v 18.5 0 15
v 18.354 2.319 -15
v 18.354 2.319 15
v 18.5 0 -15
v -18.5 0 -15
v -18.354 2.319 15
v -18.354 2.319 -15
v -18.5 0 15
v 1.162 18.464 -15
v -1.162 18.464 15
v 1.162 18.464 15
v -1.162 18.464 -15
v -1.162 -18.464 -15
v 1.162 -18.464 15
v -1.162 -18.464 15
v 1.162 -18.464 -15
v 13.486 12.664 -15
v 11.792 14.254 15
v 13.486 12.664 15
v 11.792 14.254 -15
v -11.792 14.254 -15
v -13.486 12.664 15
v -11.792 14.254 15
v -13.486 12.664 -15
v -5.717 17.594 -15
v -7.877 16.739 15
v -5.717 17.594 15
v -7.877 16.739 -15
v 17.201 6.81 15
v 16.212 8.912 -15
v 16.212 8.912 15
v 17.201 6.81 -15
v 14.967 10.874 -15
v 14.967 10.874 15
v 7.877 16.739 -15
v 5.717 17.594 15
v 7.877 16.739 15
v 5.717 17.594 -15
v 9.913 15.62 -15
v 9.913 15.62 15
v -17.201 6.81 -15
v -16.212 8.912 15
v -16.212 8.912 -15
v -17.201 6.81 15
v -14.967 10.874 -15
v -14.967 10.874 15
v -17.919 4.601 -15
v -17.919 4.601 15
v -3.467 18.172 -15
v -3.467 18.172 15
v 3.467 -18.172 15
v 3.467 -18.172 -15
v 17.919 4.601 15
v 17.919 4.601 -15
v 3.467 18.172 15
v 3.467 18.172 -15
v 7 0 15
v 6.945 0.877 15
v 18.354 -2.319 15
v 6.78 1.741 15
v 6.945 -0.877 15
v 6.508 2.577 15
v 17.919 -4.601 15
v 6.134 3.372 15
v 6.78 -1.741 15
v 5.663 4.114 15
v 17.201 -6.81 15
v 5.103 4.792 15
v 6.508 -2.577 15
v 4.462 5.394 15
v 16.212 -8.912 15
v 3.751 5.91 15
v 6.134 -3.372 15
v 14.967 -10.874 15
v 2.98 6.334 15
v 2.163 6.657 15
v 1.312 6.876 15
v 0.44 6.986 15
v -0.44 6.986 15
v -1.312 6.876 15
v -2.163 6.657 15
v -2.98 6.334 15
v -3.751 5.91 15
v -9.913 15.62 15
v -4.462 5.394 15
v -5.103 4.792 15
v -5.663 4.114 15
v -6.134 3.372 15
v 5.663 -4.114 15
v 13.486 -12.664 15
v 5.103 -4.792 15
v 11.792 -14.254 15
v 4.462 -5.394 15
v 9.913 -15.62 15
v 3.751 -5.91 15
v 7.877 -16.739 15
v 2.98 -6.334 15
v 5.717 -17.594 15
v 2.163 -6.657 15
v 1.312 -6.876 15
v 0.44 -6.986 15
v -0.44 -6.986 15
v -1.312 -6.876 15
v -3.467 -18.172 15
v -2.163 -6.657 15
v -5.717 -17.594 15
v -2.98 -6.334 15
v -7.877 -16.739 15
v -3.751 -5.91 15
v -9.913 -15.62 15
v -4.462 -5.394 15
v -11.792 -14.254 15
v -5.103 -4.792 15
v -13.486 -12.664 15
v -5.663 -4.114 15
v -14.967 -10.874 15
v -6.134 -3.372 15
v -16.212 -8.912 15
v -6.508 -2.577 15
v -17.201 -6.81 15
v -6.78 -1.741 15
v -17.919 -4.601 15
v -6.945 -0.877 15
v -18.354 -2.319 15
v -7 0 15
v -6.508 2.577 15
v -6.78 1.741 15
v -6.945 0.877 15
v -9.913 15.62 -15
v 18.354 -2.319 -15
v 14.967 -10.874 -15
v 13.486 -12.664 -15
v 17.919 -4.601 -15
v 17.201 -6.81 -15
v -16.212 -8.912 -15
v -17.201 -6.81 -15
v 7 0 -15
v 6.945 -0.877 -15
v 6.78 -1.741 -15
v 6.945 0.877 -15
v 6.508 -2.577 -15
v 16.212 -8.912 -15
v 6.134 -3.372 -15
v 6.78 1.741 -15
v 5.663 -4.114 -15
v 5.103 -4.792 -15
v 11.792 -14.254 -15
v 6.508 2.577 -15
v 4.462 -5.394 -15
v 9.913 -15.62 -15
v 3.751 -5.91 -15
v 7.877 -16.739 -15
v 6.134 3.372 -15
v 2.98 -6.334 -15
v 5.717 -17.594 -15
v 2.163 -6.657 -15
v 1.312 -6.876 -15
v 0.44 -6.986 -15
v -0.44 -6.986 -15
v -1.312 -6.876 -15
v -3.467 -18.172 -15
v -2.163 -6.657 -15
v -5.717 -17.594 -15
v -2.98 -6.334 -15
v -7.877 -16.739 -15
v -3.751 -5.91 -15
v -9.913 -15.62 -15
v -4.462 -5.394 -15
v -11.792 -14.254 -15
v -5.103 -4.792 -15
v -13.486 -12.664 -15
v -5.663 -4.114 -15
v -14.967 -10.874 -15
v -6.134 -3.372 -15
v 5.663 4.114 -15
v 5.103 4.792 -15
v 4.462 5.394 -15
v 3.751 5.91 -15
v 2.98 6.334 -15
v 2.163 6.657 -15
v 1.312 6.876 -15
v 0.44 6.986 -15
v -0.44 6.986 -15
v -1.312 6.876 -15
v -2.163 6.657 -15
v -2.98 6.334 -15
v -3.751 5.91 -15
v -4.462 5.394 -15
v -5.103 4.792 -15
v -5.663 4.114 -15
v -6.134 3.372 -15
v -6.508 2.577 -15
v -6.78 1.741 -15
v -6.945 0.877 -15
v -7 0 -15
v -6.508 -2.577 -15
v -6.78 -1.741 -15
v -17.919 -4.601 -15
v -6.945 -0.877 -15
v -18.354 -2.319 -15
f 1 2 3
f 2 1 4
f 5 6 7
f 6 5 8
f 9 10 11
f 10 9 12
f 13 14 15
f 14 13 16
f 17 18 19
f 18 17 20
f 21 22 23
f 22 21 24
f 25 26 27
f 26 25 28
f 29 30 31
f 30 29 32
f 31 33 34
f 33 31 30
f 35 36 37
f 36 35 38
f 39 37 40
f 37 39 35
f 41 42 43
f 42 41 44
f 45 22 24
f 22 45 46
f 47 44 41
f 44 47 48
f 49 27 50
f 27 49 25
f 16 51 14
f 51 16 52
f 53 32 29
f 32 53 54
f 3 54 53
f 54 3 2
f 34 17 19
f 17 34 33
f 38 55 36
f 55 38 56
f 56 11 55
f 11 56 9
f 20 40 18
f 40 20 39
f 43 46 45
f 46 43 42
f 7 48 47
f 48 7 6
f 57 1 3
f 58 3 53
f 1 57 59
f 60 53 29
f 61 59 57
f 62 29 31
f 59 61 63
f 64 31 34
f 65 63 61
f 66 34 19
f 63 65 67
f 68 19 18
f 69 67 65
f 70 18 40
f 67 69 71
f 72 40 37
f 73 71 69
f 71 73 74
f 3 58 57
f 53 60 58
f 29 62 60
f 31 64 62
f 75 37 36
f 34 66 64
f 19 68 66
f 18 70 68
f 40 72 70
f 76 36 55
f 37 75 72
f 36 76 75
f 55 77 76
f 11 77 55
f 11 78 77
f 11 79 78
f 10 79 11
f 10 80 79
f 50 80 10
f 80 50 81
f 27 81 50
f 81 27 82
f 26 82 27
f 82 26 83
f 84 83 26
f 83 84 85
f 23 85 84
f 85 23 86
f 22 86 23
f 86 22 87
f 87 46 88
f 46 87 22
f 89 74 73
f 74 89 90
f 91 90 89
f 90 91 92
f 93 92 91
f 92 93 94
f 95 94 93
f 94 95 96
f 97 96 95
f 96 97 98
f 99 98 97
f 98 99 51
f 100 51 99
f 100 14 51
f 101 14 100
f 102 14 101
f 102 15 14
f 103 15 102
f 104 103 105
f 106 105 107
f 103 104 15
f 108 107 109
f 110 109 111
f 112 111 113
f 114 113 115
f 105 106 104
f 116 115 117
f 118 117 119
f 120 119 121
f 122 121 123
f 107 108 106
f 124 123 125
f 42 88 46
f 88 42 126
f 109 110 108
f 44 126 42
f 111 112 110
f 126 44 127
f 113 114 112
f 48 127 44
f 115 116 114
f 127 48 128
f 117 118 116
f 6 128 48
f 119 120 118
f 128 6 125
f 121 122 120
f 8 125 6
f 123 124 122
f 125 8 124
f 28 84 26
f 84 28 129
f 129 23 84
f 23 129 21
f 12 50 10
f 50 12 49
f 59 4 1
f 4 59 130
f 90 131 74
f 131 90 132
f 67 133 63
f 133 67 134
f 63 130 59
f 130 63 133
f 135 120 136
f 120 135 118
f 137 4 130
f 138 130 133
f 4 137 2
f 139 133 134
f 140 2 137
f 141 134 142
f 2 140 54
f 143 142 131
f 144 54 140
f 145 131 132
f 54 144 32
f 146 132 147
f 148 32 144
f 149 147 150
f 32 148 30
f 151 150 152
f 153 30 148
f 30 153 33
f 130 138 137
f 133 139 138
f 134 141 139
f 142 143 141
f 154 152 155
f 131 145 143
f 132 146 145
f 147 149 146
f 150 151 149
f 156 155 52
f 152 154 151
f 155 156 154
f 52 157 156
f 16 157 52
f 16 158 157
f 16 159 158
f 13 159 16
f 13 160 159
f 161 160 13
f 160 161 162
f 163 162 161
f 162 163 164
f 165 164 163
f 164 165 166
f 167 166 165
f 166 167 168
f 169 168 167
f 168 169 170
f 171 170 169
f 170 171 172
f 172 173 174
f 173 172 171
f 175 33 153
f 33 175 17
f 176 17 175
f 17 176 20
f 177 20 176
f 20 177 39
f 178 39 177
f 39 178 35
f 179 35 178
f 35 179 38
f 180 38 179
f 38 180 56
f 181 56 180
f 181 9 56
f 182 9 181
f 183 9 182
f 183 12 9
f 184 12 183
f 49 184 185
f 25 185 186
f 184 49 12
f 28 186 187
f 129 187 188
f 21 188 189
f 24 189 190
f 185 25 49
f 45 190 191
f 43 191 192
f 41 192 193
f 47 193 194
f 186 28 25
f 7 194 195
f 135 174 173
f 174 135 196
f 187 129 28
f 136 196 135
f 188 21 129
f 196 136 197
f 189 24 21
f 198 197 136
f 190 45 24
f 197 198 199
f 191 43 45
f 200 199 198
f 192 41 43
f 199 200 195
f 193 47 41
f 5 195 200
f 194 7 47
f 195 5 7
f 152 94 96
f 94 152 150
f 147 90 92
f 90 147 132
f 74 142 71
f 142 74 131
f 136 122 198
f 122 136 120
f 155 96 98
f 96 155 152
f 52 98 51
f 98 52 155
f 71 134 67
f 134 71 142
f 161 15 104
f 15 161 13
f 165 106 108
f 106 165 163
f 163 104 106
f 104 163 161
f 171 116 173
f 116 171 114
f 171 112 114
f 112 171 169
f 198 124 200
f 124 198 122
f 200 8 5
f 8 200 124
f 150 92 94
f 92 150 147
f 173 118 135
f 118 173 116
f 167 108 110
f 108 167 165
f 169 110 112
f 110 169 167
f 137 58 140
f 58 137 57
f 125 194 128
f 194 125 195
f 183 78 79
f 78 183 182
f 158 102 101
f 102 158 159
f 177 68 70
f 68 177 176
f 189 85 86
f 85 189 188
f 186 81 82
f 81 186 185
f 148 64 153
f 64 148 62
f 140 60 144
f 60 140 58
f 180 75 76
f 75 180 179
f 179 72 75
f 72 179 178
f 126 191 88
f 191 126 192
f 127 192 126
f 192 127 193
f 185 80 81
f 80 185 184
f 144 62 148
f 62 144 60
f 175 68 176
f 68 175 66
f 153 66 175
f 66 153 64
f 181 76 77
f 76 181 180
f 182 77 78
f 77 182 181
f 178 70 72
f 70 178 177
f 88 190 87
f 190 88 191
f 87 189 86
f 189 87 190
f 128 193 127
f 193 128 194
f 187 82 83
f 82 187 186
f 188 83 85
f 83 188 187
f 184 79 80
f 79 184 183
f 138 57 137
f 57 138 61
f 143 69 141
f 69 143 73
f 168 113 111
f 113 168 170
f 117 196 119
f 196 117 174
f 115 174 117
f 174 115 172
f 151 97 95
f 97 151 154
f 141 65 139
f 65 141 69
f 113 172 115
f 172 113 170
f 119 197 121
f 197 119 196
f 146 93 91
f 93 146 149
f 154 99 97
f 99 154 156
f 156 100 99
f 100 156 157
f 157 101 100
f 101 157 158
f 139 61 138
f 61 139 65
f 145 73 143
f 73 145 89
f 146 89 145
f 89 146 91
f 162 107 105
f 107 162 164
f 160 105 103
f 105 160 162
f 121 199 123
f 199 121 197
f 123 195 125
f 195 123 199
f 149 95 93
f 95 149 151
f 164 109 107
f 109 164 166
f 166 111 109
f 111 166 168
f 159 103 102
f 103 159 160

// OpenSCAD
$fn = 50;


difference() {
	union() {
		translate(v = [0, 0, -15.0000000000]) {
			cylinder(h = 30, r = 18.5000000000);
		}
	}
	union() {
		translate(v = [0, 0, -100.0000000000]) {
			cylinder(h = 200, r = 7);
		}
	}
}
